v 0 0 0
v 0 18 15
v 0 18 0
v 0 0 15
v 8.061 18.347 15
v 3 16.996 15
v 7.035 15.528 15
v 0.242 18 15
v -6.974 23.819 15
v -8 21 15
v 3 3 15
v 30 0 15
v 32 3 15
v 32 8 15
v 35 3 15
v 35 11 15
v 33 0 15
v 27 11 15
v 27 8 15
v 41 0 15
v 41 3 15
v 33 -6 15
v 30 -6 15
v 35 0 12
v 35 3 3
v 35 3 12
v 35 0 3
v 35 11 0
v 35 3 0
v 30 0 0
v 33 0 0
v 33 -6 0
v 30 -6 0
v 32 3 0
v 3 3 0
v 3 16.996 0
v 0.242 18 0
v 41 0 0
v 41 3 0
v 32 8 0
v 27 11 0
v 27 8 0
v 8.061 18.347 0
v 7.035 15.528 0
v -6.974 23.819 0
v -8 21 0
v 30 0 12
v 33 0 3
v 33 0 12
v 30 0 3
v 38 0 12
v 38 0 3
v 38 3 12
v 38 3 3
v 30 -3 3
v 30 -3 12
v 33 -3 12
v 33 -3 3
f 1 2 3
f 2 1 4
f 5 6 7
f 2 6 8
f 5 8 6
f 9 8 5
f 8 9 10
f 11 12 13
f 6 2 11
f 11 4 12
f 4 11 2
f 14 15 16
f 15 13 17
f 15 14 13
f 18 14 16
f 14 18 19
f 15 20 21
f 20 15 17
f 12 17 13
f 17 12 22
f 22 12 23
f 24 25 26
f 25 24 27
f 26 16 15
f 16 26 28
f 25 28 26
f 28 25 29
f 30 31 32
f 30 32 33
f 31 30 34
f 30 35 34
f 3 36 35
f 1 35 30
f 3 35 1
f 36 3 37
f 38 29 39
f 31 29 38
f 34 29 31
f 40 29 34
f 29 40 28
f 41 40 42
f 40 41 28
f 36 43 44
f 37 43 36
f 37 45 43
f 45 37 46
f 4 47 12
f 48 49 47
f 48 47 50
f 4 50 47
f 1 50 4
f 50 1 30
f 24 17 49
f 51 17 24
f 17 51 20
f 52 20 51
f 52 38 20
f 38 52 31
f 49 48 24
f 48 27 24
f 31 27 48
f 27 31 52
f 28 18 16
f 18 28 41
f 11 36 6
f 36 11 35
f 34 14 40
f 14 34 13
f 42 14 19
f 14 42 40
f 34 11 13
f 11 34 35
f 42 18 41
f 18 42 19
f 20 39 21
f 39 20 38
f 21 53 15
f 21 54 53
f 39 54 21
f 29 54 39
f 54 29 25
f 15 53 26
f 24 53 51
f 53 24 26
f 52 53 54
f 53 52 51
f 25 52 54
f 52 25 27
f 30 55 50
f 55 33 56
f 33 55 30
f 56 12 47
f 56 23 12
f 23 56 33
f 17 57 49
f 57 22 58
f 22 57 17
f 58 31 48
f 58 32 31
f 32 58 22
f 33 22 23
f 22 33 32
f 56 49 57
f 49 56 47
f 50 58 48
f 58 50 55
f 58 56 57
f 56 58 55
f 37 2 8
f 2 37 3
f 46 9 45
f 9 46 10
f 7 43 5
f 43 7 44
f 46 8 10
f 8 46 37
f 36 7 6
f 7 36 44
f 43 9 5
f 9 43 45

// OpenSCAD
width = 35;
length = 11;
height = 15;
band_height = 9;
thickness = 3;
clip_width = 5;
holder_length = 18;
holder_handle = 16;

clip_band_hole_width = 6;

// body
difference() {
    cube([width, length, height]);
    translate([thickness, thickness, 0]) cube([width - 2 * thickness, length - 2 * thickness, height]);
    translate([thickness, length - thickness, 0]) cube([width - 2 * thickness - clip_width, length - 2 * thickness, height]);
}

// handle
translate([0, 0, 0]) cube([thickness, holder_length, height]);
translate([-8, holder_length + 3, 0]) rotate([0, 0, -20]) cube([holder_handle, thickness, height]);

// clip band hole
translate([width, 0, 0]) difference() {
    cube([clip_band_hole_width, thickness, height]);
    translate([0, 0, thickness]) cube([clip_band_hole_width - thickness, thickness, band_height]);
}

// other band hole
translate([30, -clip_band_hole_width, 0]) difference() {
    cube([thickness, clip_band_hole_width, height]);
    translate([0, thickness, thickness]) cube([thickness, clip_band_hole_width - thickness, band_height]);
}
